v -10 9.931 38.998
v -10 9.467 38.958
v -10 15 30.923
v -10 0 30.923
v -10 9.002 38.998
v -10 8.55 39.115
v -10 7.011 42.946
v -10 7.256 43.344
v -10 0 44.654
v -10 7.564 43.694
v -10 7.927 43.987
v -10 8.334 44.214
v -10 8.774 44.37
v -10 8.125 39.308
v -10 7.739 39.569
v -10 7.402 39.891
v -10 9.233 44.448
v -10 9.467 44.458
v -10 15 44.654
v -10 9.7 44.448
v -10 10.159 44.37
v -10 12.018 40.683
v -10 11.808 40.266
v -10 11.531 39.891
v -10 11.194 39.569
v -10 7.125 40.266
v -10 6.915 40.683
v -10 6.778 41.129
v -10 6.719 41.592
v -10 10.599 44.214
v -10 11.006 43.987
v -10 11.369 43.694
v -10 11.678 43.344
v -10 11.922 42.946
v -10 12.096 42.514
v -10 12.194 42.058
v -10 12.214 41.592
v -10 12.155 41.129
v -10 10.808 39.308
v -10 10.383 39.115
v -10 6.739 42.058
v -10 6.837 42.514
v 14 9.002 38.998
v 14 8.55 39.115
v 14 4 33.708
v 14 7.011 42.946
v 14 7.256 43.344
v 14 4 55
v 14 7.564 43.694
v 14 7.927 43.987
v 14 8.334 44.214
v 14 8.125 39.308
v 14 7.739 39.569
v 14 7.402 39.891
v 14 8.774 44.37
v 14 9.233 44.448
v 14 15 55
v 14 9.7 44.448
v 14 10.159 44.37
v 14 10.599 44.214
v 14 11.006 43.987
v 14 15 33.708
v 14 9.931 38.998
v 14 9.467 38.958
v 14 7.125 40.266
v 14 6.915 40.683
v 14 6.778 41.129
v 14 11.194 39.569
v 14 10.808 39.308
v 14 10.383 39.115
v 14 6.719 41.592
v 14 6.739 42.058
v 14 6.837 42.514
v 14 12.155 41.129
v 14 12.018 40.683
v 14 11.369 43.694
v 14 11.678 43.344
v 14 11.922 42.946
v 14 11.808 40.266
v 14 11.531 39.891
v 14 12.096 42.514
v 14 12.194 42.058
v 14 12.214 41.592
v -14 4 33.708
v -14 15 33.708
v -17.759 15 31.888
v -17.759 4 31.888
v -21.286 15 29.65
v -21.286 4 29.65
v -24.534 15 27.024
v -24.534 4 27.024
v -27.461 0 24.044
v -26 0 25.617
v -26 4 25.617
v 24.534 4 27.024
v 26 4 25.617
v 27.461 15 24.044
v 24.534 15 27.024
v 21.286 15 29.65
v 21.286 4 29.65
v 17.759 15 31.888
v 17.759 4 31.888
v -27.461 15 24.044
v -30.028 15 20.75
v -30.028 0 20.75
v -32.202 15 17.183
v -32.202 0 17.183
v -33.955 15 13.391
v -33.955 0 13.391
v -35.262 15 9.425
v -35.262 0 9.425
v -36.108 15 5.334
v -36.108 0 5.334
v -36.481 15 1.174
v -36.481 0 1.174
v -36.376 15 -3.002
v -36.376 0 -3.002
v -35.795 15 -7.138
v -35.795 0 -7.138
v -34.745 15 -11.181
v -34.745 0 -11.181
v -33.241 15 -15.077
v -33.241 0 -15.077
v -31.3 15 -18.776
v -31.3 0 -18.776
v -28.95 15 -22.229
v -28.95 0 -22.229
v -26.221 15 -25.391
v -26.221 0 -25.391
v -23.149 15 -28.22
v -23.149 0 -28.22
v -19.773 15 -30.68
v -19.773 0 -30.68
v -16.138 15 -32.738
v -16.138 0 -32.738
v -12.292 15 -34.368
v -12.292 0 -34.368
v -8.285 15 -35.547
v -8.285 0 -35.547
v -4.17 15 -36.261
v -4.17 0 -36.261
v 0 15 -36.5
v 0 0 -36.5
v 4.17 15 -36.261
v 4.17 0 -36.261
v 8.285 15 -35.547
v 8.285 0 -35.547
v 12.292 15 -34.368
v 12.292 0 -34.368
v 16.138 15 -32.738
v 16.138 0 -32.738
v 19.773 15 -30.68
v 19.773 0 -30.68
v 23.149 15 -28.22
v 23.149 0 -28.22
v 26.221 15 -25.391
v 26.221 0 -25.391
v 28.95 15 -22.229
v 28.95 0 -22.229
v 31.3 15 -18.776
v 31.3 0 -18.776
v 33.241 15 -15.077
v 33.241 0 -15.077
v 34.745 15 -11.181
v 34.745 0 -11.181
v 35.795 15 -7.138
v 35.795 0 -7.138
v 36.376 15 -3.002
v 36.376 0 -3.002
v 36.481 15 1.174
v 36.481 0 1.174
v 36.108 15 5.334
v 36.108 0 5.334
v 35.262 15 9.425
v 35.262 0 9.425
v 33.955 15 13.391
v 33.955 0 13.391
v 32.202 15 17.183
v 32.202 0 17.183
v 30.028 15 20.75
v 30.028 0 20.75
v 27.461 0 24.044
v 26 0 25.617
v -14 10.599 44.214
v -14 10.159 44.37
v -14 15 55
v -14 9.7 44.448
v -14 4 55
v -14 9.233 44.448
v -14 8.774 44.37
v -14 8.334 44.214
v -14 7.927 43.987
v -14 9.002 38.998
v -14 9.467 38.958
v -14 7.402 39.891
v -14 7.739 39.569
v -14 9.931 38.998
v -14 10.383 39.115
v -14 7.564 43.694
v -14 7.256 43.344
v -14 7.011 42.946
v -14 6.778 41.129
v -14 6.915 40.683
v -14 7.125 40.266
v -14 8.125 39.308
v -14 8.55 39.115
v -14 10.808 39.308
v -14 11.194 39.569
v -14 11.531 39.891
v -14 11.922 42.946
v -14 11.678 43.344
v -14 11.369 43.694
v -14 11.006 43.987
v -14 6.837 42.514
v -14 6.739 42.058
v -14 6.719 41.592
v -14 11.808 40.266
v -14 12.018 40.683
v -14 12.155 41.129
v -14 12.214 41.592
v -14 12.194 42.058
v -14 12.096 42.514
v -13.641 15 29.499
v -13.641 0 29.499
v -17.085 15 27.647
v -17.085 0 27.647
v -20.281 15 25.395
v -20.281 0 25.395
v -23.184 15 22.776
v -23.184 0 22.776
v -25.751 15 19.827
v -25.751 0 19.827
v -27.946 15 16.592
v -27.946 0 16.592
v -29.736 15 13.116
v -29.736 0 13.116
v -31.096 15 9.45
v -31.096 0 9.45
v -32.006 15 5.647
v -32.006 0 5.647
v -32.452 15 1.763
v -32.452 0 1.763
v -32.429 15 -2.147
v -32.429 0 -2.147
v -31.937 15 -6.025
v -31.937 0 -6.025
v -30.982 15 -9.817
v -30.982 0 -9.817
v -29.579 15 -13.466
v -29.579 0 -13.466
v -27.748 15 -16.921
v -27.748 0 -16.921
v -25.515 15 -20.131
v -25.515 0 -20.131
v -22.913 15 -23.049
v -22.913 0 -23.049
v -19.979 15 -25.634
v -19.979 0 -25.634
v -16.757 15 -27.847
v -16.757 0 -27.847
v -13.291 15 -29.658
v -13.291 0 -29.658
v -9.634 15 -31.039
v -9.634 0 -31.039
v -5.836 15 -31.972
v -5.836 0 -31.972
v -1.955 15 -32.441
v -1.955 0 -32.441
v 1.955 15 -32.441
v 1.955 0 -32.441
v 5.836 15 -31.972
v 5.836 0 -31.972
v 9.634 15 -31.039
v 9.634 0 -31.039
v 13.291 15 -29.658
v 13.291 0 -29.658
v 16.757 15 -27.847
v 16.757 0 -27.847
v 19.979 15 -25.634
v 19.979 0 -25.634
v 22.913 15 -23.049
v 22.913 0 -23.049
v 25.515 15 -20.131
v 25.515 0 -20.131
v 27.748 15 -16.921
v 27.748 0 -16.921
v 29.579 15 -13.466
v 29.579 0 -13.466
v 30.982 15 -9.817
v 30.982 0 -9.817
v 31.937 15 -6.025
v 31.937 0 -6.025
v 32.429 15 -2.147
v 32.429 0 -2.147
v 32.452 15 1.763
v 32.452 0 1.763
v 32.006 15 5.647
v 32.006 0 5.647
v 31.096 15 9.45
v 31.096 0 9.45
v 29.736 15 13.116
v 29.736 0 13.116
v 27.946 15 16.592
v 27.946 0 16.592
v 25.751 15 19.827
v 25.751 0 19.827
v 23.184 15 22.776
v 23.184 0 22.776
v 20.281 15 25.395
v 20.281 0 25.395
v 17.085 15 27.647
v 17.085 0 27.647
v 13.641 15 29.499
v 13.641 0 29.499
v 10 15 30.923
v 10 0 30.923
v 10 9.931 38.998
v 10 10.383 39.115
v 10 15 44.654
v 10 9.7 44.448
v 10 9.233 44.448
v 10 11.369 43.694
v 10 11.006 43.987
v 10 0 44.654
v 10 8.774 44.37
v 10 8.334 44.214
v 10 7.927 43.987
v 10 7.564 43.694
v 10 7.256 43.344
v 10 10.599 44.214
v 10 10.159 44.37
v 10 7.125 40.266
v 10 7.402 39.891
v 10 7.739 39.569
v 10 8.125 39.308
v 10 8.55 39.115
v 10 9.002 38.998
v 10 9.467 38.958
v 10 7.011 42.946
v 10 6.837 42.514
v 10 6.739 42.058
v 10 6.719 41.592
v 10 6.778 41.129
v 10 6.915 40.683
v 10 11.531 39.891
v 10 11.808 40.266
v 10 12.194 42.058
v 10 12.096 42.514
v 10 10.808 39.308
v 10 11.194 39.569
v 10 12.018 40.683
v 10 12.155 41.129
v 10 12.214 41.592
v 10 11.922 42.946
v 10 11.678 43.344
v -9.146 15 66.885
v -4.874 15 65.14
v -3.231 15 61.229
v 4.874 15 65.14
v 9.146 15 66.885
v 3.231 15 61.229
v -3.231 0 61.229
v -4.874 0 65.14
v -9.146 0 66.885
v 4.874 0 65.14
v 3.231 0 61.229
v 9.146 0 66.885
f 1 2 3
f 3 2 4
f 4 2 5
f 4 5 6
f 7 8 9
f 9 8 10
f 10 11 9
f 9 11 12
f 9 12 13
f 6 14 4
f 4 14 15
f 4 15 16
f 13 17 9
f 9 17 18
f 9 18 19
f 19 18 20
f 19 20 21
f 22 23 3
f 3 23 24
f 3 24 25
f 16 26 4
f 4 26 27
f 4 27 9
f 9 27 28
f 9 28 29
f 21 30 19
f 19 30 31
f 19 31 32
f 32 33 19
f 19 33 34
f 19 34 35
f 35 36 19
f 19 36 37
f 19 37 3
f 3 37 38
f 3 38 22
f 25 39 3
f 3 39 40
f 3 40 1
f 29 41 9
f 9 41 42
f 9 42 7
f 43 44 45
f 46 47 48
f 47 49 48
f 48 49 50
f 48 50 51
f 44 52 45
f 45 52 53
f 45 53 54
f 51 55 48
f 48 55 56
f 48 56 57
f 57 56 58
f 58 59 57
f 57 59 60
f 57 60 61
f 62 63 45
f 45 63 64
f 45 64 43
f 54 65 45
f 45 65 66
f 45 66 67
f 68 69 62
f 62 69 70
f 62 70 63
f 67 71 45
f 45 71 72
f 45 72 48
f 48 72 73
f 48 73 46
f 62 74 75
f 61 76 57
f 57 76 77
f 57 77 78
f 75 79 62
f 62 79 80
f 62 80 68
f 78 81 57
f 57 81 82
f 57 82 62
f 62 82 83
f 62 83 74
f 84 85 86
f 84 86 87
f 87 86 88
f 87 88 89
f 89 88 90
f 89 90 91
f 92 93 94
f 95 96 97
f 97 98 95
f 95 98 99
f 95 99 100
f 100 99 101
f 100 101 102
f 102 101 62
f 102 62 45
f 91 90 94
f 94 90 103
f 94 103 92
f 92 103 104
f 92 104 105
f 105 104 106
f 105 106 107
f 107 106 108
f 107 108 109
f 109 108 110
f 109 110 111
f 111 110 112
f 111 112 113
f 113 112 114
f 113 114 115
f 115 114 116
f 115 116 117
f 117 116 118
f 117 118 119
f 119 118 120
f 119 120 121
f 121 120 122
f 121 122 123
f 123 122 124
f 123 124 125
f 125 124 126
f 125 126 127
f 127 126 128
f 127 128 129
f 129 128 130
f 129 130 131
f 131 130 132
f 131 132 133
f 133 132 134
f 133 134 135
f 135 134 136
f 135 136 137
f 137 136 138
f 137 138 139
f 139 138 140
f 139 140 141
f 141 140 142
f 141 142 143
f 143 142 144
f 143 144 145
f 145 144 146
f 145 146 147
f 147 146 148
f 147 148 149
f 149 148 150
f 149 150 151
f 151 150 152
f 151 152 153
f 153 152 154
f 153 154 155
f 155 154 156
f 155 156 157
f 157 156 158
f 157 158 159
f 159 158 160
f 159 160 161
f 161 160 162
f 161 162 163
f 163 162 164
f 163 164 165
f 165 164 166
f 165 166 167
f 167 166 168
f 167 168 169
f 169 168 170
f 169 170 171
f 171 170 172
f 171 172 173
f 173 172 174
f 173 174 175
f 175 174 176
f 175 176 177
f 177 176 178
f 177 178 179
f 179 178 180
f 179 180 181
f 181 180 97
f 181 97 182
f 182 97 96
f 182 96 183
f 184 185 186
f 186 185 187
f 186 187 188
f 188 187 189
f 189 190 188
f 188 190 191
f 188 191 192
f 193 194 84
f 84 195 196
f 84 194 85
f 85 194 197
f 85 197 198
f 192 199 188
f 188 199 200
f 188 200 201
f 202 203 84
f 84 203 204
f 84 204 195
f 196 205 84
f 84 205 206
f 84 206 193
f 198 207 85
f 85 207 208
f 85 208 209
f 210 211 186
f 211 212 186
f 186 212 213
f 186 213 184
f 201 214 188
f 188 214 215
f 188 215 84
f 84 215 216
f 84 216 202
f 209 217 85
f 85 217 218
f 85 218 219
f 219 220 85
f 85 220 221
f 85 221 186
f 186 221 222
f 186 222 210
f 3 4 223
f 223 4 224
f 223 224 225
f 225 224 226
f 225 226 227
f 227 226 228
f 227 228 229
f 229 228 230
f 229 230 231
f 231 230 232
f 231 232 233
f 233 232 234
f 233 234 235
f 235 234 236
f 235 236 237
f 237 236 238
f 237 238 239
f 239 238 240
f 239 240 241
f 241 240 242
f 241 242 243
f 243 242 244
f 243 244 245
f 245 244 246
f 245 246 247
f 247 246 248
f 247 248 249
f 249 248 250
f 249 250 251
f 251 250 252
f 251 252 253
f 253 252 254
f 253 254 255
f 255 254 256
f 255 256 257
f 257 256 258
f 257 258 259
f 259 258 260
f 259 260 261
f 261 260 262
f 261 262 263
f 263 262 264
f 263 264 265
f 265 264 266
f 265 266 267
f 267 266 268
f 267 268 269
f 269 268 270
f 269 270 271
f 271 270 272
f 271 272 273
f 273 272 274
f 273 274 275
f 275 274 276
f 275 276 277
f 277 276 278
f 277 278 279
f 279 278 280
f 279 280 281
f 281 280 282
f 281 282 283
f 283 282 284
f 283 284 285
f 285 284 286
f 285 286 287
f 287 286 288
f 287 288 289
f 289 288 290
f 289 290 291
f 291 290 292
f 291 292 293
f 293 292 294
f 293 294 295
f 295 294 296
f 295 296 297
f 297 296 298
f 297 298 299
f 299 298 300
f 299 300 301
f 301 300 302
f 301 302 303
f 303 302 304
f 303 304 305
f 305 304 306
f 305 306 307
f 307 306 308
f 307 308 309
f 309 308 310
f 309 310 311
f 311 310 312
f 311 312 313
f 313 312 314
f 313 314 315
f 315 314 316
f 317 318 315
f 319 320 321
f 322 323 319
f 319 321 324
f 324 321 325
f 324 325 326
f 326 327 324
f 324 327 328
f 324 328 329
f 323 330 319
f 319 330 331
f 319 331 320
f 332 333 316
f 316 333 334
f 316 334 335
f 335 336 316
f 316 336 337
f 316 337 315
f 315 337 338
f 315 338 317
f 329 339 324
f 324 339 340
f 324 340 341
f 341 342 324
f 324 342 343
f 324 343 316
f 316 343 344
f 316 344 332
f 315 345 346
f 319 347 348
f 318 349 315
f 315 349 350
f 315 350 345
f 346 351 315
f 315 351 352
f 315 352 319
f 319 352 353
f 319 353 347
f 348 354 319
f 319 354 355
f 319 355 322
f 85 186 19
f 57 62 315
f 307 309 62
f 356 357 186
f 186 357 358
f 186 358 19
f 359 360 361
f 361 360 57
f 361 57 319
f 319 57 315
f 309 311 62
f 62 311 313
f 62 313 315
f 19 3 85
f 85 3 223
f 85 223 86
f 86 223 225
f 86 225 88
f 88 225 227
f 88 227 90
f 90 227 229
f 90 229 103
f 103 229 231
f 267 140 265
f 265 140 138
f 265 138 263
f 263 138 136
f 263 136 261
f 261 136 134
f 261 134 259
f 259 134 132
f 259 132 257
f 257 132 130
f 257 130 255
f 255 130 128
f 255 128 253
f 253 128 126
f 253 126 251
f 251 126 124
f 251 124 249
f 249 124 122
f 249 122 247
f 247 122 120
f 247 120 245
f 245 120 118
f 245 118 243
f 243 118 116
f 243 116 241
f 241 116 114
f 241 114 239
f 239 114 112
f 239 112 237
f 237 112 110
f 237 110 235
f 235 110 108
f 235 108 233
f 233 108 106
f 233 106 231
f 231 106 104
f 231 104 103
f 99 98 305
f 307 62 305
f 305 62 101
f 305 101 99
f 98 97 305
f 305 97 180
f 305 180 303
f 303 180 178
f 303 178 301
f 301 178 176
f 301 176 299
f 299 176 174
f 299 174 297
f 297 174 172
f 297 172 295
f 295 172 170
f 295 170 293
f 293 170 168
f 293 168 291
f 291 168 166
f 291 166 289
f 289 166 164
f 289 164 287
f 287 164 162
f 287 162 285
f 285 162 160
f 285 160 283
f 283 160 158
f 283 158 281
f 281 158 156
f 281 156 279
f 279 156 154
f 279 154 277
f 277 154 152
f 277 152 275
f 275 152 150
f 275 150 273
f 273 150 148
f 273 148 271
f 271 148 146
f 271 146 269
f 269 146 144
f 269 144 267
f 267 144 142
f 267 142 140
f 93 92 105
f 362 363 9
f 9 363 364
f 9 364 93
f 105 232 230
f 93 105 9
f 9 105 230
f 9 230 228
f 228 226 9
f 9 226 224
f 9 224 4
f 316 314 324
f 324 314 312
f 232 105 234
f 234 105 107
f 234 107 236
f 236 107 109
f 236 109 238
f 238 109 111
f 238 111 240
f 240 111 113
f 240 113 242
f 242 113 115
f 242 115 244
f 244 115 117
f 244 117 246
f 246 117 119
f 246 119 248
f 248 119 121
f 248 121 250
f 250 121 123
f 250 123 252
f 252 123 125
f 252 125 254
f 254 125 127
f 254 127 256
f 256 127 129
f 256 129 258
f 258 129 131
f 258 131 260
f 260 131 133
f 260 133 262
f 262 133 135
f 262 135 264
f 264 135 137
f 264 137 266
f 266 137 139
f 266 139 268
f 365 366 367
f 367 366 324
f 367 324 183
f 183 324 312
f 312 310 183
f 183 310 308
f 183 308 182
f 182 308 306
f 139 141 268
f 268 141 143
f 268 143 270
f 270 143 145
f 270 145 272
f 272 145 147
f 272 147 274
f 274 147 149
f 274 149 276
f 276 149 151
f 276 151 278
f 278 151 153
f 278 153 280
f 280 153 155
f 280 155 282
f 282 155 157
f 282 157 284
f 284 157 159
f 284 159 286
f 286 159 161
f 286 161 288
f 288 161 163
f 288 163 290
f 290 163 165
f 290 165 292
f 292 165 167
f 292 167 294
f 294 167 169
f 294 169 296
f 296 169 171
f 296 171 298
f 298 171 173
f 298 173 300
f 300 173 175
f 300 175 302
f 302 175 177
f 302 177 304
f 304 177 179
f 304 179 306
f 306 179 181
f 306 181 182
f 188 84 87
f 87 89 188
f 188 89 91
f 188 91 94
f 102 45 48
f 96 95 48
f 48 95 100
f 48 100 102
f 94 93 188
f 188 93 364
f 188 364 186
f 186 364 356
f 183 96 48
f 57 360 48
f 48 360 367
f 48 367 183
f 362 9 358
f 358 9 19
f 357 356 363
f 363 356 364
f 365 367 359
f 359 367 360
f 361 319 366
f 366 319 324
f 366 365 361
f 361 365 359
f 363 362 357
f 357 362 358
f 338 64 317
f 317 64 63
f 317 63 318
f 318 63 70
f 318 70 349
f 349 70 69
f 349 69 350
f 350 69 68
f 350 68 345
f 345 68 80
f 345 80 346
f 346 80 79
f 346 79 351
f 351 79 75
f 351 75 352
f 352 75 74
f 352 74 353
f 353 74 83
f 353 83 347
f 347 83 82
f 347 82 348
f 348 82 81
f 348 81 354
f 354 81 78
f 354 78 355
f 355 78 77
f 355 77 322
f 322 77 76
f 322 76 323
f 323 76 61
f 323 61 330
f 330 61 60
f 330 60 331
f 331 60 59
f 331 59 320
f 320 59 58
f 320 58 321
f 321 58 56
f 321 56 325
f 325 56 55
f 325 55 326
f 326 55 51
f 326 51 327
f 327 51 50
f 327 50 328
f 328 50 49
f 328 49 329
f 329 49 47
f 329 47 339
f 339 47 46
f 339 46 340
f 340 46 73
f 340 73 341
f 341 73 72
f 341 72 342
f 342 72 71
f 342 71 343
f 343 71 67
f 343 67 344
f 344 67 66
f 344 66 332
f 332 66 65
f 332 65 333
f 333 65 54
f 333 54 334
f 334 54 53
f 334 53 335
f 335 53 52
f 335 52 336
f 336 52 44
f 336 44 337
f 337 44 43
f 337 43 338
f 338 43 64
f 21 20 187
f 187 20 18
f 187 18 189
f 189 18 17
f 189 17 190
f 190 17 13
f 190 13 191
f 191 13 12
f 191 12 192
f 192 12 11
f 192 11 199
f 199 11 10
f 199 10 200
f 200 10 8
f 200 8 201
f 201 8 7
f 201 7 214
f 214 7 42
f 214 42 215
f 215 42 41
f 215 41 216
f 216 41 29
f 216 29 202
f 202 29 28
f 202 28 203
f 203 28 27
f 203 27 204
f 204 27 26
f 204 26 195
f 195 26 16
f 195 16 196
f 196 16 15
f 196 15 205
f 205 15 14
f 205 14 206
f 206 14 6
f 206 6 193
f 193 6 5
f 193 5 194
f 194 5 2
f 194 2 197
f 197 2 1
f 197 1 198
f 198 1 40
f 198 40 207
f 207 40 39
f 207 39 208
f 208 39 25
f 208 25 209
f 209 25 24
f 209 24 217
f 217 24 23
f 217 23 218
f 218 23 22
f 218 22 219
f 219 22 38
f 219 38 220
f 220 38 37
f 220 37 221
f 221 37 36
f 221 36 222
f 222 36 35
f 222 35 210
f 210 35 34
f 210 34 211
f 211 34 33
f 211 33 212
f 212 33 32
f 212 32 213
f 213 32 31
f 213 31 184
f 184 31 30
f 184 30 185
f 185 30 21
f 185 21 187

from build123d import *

# Parameters (mm, degrees)
BOSS_EXTRUDE1_DEPTH = 15
BOSS_EXTRUDE2_DEPTH = 4
CUT_EXTRUDE1_DEPTH  = 4
BOSS_EXTRUDE3_DEPTH = 15
CHAMFER1_SIZE       = 3
SKETCH6_R           = 2.75
CUT_EXTRUDE2_DEPTH  = 50


with BuildPart() as part:
    # Sketch1 → Boss-Extrude1 (new body)
    with BuildSketch(Plane(origin=(0, 0, 0), x_dir=(1, 0, 0), z_dir=(0, 1, 0))):
        with BuildLine():
            Line((-14, -33.708307581), (-14, -55))
            Line((-14, -55), (-10, -55))
            Line((-10, -55), (-10, -30.923292192))
            ThreePointArc((-10, -30.923292192), (0, 32.5), (10, -30.923292192))
            Line((10, -30.923292192), (10, -55))
            Line((10, -55), (14, -55))
            Line((14, -55), (14, -33.708307581))
            ThreePointArc((14, -33.708307581), (0, 36.5), (-14, -33.708307581))
        make_face()
    extrude(amount=BOSS_EXTRUDE1_DEPTH)

    # Sketch2 → Boss-Extrude2 (add)
    with BuildSketch(Plane.XZ):
        Polygon((-26, 22.856938123), (-14, 33.708307581), (-14, 55), (-26, 55), align=None)
        Polygon((14, 55), (26, 55), (26, 22.856938123), (14, 33.708307581), align=None)
    extrude(amount=-BOSS_EXTRUDE2_DEPTH)

    # Sketch4 → Cut-Extrude1 (cut)
    with BuildSketch(Plane(origin=(0, 4, 0), x_dir=(1, 0, 0), z_dir=(0, 1, 0))):
        Polygon((-26, -25.617376915), (-14, -55), (-32.323218547, -64.259569624), align=None)
        Polygon((14, -55), (26, -25.617376915), (31.225077356, -59.629784812), align=None)
    extrude(amount=-CUT_EXTRUDE1_DEPTH, mode=Mode.SUBTRACT)

    # Sketch5 → Boss-Extrude3 (add)
    with BuildSketch(Plane.XZ):
        Polygon((-9.146083297, 66.885067081), (-14, 55), (-10, 55), (-10, 44.654426435), (-2.09670025, 64.00606624), align=None)
        Polygon((10, 55), (14, 55), (9.146083297, 66.885067081), (2.09670025, 64.00606624), (10, 44.654426435), align=None)
    extrude(amount=-BOSS_EXTRUDE3_DEPTH)

    # Chamfer1
    chamfer1_edges = [part.edges().sort_by_distance(p)[0] for p in [
        (-2.09670025, 7.5, 64.00606624),
        (2.09670025, 7.5, 64.00606624),
    ]]
    chamfer(chamfer1_edges, length=CHAMFER1_SIZE)

    # Sketch6 → Cut-Extrude2 (cut)
    with BuildSketch(Plane(origin=(14, 0, 0), x_dir=(0, 0, -1), z_dir=(1, 0, 0))):
        with Locations((-41.708307581, 9.466509398)):
            Circle(SKETCH6_R)
    extrude(amount=-CUT_EXTRUDE2_DEPTH, mode=Mode.SUBTRACT)


solid = part.part
